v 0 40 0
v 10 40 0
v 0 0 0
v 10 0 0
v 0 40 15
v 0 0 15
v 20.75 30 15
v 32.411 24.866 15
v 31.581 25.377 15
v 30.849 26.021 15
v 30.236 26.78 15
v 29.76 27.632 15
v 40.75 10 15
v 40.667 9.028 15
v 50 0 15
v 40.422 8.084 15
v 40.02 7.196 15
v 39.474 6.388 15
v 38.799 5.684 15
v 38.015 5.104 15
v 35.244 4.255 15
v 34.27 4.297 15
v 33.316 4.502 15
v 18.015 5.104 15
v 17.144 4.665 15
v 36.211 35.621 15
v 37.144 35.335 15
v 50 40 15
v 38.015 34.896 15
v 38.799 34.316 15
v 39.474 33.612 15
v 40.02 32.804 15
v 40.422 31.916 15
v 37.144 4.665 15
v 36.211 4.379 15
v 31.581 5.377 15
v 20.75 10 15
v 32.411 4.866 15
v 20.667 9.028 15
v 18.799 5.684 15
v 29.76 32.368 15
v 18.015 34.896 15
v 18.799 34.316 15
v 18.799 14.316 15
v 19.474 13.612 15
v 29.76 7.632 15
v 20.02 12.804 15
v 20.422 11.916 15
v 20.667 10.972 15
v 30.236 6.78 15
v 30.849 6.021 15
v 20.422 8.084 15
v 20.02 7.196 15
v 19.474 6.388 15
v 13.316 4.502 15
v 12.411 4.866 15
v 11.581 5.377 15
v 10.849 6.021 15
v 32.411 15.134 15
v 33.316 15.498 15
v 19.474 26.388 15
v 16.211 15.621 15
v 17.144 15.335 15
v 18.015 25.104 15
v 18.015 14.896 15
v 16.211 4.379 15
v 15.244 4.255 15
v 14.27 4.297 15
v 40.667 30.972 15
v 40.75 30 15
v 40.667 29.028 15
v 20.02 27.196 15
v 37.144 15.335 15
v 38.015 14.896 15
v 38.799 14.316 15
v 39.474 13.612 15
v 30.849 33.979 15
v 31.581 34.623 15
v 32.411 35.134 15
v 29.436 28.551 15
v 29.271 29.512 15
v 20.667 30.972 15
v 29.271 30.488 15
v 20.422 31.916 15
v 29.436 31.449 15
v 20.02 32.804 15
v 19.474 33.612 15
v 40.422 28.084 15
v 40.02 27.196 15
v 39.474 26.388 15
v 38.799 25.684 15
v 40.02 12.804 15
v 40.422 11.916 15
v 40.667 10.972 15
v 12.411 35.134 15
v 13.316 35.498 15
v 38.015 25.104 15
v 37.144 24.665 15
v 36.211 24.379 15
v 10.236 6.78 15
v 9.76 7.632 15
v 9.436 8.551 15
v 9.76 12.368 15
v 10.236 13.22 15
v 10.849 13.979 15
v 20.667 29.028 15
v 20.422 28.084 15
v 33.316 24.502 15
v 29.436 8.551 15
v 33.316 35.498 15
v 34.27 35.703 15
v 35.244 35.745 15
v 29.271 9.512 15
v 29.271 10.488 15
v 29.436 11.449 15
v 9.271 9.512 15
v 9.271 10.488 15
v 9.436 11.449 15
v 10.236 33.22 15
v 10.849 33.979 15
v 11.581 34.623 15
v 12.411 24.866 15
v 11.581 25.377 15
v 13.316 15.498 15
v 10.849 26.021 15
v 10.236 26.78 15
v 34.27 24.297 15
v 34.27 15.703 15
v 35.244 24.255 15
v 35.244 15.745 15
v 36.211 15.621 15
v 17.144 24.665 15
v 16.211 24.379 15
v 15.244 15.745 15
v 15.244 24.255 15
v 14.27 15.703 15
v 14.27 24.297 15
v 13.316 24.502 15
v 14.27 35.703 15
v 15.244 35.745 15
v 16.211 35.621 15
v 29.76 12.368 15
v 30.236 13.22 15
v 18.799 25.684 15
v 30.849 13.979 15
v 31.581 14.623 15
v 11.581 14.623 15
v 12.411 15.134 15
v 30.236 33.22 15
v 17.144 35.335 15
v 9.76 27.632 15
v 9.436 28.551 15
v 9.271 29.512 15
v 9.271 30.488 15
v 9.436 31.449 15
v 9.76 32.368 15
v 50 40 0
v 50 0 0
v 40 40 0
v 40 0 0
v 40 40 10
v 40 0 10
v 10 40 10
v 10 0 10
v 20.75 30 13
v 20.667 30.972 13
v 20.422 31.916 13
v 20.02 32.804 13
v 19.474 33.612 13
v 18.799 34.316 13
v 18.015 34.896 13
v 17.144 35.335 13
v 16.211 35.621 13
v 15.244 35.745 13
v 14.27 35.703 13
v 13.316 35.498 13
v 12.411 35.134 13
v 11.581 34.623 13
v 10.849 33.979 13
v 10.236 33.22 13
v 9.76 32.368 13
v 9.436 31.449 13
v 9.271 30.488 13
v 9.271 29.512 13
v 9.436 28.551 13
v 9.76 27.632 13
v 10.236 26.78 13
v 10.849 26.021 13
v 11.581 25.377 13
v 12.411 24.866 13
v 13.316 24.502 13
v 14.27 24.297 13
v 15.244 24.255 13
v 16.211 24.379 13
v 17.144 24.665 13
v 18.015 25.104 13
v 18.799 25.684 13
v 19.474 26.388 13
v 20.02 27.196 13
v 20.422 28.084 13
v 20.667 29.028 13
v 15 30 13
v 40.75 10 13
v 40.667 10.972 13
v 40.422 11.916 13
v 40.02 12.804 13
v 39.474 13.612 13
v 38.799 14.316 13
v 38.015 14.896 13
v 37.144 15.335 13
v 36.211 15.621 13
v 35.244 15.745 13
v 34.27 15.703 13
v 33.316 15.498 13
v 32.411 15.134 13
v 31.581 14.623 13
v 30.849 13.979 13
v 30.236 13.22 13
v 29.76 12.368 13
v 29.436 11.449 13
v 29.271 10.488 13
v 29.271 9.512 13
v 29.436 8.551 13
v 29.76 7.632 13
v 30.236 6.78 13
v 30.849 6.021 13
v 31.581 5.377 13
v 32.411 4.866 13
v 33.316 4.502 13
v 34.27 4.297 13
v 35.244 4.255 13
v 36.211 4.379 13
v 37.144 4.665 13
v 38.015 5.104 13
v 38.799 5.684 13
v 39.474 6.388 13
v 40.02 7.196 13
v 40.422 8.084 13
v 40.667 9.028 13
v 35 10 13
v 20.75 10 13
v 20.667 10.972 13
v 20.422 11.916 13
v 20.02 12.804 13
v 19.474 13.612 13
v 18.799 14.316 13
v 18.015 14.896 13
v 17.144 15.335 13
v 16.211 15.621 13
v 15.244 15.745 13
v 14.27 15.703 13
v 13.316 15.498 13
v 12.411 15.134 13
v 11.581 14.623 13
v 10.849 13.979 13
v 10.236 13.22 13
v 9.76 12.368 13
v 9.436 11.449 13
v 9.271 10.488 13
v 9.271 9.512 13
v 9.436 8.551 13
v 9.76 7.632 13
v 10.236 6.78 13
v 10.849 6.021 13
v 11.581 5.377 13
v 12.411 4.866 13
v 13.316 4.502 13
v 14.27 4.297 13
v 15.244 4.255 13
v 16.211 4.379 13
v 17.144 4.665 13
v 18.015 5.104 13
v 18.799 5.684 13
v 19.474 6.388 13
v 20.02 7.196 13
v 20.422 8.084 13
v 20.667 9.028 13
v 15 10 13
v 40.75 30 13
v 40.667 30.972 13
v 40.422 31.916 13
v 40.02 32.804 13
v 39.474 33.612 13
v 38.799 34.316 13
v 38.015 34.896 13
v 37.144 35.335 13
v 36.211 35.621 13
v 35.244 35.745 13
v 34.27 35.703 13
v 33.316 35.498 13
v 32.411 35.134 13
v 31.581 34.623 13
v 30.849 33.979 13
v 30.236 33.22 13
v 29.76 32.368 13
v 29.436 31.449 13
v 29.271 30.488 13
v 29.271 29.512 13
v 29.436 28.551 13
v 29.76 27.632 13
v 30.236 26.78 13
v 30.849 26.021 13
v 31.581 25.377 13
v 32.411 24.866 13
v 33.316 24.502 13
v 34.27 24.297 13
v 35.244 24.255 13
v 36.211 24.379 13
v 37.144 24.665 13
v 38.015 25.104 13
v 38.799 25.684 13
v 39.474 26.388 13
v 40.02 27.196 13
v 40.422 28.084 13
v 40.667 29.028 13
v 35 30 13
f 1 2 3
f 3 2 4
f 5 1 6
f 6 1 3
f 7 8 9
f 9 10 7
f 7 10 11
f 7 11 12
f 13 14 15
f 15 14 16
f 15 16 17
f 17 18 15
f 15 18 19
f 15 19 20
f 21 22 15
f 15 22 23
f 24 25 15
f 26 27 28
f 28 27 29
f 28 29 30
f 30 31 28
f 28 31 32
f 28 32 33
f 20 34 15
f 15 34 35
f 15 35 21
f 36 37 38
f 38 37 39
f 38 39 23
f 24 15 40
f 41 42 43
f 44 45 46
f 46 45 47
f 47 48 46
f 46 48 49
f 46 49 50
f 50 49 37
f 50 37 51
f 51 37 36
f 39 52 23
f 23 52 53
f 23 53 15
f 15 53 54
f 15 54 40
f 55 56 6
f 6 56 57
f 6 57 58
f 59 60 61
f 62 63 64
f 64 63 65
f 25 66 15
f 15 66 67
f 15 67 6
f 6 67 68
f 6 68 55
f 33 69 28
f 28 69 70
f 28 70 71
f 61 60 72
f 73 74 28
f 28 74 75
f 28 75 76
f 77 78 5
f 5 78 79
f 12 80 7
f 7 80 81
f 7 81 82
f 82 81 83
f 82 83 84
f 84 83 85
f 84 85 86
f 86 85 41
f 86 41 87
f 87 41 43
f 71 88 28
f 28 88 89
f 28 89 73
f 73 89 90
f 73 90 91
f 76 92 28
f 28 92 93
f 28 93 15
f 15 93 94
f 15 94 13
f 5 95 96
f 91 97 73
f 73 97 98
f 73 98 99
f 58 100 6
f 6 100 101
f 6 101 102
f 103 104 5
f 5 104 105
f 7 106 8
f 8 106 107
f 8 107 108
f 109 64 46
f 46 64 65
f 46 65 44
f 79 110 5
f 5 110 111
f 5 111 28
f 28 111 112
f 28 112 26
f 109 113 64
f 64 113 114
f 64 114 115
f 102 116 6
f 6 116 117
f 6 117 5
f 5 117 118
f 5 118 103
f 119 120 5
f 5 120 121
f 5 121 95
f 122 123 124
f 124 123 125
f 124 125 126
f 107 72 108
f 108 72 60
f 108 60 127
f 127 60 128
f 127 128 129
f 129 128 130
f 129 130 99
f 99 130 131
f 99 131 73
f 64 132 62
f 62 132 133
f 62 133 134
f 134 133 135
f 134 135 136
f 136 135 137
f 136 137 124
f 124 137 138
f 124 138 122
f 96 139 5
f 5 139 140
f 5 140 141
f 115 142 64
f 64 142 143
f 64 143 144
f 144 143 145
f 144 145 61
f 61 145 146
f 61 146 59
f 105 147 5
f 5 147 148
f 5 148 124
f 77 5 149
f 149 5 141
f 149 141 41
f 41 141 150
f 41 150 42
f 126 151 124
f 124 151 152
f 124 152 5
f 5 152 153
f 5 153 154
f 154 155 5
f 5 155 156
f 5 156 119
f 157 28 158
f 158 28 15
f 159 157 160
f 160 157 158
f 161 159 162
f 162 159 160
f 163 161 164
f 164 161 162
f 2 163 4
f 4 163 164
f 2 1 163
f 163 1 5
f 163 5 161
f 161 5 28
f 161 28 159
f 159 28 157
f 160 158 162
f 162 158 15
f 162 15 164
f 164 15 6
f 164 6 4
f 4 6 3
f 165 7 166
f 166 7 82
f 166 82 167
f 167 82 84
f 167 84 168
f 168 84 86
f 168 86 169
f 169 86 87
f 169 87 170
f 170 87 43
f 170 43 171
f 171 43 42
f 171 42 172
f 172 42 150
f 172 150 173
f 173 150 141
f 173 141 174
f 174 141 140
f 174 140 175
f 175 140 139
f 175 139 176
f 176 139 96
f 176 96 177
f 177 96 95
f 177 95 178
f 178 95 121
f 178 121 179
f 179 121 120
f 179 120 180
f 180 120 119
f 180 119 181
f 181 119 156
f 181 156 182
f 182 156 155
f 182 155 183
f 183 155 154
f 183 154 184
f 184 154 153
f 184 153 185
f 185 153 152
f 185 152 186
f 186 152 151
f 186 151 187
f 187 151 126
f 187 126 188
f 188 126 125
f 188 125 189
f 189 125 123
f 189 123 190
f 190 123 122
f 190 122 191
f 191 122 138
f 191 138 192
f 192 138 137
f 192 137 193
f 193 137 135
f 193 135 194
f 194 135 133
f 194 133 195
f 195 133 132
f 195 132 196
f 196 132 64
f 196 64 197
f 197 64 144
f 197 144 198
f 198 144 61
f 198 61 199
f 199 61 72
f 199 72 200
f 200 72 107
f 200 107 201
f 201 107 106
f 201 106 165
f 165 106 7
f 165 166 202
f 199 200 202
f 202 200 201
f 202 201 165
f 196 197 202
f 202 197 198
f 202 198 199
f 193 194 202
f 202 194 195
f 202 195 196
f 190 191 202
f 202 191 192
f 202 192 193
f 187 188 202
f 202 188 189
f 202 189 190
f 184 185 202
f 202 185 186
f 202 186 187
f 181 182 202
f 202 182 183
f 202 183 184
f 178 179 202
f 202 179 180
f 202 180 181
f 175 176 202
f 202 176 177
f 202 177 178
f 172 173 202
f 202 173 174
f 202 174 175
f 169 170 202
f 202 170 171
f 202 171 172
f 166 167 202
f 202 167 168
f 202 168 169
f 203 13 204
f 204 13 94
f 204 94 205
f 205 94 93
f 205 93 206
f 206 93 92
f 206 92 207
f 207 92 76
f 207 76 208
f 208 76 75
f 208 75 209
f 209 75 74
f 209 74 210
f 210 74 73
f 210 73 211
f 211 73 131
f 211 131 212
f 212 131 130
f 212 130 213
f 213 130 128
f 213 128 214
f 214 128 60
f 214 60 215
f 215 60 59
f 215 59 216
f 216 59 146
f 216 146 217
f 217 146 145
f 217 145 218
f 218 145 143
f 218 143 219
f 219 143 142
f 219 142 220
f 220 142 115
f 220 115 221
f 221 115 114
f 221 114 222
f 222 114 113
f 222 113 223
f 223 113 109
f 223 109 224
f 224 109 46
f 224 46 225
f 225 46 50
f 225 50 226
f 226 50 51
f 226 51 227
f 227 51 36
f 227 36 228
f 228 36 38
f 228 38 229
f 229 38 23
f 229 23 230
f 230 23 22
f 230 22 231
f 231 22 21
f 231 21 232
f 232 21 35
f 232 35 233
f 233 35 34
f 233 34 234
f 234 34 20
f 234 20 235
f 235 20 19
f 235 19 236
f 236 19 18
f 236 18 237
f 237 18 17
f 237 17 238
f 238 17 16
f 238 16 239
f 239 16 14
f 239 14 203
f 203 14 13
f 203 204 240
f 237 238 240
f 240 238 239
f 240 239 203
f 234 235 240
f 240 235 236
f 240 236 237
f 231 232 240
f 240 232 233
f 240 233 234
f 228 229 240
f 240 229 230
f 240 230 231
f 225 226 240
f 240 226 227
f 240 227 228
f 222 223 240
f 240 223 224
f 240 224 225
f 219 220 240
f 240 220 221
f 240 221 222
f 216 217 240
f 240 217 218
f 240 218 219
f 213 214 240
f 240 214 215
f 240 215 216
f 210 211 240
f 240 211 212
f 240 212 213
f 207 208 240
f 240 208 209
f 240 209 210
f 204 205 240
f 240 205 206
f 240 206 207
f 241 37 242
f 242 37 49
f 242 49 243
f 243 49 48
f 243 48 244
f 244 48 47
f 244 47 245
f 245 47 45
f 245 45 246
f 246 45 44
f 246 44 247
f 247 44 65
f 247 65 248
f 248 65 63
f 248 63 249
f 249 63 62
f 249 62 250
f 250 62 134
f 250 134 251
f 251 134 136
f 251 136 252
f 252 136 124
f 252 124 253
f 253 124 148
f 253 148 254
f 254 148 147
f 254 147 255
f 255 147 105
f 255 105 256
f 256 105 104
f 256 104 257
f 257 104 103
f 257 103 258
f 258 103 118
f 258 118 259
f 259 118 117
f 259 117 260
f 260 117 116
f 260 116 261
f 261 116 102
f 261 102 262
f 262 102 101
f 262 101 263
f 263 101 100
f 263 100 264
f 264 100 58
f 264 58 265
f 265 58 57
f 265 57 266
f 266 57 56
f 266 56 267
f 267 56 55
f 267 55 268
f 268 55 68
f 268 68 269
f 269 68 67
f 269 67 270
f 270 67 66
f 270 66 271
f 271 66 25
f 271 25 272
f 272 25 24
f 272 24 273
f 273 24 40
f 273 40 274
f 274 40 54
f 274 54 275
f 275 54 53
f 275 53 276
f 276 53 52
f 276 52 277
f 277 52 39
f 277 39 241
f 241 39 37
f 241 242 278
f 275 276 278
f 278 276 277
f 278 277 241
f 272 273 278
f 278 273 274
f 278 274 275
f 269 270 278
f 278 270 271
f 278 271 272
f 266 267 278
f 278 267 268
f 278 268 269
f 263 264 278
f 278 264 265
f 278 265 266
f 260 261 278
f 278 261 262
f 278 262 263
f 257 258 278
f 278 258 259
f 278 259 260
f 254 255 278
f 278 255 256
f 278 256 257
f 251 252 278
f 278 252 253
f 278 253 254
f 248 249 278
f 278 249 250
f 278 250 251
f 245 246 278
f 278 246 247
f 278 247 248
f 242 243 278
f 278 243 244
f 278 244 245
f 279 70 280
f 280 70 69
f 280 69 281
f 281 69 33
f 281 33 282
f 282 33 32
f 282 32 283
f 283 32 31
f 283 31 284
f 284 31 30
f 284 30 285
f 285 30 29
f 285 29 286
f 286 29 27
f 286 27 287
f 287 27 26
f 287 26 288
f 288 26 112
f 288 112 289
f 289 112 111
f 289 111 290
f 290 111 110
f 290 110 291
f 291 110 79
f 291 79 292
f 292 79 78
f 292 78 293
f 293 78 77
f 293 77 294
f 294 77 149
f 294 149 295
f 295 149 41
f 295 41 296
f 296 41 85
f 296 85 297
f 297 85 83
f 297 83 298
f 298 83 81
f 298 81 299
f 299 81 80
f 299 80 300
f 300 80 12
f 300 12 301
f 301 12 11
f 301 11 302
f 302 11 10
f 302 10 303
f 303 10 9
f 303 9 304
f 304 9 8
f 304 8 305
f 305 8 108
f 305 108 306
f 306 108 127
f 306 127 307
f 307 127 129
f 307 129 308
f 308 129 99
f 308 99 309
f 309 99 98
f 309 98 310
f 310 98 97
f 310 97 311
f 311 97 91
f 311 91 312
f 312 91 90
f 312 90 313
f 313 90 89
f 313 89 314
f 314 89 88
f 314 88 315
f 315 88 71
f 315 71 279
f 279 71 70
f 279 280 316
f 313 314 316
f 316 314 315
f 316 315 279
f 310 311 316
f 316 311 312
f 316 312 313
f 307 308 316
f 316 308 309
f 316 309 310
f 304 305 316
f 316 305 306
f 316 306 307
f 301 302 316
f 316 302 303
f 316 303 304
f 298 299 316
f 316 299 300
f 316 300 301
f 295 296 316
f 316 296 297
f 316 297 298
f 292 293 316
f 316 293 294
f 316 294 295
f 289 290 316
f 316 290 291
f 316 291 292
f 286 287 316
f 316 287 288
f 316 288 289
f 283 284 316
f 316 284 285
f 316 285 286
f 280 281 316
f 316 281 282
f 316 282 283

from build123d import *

# Parameters (mm, degrees)
EXTRUDE_1_DEPTH     = 40
SKETCH_2_R          = 5.75
CUT_EXTRUDE_1_DEPTH = 2


with BuildPart() as part:
    # 草图1 → 凸台-拉伸1 (new body)
    with BuildSketch(Plane(origin=(0, 0, 0), x_dir=(1, 0, 0), z_dir=(0, 1, 0))):
        Polygon((0, 0), (0, -15), (50, -15), (50, 0), (40, 0), (40, -10), (10, -10), (10, 0), align=None)
    extrude(amount=EXTRUDE_1_DEPTH)

    # 草图2 → 切除-拉伸1 (cut)
    with BuildSketch(Plane.XY.offset(15)):
        with Locations((15, 30)):
            Circle(SKETCH_2_R)
        with Locations((35, 30)):
            Circle(SKETCH_2_R)
        with Locations((15, 10)):
            Circle(SKETCH_2_R)
        with Locations((35, 10)):
            Circle(SKETCH_2_R)
    extrude(amount=-CUT_EXTRUDE_1_DEPTH, mode=Mode.SUBTRACT)


solid = part.part
